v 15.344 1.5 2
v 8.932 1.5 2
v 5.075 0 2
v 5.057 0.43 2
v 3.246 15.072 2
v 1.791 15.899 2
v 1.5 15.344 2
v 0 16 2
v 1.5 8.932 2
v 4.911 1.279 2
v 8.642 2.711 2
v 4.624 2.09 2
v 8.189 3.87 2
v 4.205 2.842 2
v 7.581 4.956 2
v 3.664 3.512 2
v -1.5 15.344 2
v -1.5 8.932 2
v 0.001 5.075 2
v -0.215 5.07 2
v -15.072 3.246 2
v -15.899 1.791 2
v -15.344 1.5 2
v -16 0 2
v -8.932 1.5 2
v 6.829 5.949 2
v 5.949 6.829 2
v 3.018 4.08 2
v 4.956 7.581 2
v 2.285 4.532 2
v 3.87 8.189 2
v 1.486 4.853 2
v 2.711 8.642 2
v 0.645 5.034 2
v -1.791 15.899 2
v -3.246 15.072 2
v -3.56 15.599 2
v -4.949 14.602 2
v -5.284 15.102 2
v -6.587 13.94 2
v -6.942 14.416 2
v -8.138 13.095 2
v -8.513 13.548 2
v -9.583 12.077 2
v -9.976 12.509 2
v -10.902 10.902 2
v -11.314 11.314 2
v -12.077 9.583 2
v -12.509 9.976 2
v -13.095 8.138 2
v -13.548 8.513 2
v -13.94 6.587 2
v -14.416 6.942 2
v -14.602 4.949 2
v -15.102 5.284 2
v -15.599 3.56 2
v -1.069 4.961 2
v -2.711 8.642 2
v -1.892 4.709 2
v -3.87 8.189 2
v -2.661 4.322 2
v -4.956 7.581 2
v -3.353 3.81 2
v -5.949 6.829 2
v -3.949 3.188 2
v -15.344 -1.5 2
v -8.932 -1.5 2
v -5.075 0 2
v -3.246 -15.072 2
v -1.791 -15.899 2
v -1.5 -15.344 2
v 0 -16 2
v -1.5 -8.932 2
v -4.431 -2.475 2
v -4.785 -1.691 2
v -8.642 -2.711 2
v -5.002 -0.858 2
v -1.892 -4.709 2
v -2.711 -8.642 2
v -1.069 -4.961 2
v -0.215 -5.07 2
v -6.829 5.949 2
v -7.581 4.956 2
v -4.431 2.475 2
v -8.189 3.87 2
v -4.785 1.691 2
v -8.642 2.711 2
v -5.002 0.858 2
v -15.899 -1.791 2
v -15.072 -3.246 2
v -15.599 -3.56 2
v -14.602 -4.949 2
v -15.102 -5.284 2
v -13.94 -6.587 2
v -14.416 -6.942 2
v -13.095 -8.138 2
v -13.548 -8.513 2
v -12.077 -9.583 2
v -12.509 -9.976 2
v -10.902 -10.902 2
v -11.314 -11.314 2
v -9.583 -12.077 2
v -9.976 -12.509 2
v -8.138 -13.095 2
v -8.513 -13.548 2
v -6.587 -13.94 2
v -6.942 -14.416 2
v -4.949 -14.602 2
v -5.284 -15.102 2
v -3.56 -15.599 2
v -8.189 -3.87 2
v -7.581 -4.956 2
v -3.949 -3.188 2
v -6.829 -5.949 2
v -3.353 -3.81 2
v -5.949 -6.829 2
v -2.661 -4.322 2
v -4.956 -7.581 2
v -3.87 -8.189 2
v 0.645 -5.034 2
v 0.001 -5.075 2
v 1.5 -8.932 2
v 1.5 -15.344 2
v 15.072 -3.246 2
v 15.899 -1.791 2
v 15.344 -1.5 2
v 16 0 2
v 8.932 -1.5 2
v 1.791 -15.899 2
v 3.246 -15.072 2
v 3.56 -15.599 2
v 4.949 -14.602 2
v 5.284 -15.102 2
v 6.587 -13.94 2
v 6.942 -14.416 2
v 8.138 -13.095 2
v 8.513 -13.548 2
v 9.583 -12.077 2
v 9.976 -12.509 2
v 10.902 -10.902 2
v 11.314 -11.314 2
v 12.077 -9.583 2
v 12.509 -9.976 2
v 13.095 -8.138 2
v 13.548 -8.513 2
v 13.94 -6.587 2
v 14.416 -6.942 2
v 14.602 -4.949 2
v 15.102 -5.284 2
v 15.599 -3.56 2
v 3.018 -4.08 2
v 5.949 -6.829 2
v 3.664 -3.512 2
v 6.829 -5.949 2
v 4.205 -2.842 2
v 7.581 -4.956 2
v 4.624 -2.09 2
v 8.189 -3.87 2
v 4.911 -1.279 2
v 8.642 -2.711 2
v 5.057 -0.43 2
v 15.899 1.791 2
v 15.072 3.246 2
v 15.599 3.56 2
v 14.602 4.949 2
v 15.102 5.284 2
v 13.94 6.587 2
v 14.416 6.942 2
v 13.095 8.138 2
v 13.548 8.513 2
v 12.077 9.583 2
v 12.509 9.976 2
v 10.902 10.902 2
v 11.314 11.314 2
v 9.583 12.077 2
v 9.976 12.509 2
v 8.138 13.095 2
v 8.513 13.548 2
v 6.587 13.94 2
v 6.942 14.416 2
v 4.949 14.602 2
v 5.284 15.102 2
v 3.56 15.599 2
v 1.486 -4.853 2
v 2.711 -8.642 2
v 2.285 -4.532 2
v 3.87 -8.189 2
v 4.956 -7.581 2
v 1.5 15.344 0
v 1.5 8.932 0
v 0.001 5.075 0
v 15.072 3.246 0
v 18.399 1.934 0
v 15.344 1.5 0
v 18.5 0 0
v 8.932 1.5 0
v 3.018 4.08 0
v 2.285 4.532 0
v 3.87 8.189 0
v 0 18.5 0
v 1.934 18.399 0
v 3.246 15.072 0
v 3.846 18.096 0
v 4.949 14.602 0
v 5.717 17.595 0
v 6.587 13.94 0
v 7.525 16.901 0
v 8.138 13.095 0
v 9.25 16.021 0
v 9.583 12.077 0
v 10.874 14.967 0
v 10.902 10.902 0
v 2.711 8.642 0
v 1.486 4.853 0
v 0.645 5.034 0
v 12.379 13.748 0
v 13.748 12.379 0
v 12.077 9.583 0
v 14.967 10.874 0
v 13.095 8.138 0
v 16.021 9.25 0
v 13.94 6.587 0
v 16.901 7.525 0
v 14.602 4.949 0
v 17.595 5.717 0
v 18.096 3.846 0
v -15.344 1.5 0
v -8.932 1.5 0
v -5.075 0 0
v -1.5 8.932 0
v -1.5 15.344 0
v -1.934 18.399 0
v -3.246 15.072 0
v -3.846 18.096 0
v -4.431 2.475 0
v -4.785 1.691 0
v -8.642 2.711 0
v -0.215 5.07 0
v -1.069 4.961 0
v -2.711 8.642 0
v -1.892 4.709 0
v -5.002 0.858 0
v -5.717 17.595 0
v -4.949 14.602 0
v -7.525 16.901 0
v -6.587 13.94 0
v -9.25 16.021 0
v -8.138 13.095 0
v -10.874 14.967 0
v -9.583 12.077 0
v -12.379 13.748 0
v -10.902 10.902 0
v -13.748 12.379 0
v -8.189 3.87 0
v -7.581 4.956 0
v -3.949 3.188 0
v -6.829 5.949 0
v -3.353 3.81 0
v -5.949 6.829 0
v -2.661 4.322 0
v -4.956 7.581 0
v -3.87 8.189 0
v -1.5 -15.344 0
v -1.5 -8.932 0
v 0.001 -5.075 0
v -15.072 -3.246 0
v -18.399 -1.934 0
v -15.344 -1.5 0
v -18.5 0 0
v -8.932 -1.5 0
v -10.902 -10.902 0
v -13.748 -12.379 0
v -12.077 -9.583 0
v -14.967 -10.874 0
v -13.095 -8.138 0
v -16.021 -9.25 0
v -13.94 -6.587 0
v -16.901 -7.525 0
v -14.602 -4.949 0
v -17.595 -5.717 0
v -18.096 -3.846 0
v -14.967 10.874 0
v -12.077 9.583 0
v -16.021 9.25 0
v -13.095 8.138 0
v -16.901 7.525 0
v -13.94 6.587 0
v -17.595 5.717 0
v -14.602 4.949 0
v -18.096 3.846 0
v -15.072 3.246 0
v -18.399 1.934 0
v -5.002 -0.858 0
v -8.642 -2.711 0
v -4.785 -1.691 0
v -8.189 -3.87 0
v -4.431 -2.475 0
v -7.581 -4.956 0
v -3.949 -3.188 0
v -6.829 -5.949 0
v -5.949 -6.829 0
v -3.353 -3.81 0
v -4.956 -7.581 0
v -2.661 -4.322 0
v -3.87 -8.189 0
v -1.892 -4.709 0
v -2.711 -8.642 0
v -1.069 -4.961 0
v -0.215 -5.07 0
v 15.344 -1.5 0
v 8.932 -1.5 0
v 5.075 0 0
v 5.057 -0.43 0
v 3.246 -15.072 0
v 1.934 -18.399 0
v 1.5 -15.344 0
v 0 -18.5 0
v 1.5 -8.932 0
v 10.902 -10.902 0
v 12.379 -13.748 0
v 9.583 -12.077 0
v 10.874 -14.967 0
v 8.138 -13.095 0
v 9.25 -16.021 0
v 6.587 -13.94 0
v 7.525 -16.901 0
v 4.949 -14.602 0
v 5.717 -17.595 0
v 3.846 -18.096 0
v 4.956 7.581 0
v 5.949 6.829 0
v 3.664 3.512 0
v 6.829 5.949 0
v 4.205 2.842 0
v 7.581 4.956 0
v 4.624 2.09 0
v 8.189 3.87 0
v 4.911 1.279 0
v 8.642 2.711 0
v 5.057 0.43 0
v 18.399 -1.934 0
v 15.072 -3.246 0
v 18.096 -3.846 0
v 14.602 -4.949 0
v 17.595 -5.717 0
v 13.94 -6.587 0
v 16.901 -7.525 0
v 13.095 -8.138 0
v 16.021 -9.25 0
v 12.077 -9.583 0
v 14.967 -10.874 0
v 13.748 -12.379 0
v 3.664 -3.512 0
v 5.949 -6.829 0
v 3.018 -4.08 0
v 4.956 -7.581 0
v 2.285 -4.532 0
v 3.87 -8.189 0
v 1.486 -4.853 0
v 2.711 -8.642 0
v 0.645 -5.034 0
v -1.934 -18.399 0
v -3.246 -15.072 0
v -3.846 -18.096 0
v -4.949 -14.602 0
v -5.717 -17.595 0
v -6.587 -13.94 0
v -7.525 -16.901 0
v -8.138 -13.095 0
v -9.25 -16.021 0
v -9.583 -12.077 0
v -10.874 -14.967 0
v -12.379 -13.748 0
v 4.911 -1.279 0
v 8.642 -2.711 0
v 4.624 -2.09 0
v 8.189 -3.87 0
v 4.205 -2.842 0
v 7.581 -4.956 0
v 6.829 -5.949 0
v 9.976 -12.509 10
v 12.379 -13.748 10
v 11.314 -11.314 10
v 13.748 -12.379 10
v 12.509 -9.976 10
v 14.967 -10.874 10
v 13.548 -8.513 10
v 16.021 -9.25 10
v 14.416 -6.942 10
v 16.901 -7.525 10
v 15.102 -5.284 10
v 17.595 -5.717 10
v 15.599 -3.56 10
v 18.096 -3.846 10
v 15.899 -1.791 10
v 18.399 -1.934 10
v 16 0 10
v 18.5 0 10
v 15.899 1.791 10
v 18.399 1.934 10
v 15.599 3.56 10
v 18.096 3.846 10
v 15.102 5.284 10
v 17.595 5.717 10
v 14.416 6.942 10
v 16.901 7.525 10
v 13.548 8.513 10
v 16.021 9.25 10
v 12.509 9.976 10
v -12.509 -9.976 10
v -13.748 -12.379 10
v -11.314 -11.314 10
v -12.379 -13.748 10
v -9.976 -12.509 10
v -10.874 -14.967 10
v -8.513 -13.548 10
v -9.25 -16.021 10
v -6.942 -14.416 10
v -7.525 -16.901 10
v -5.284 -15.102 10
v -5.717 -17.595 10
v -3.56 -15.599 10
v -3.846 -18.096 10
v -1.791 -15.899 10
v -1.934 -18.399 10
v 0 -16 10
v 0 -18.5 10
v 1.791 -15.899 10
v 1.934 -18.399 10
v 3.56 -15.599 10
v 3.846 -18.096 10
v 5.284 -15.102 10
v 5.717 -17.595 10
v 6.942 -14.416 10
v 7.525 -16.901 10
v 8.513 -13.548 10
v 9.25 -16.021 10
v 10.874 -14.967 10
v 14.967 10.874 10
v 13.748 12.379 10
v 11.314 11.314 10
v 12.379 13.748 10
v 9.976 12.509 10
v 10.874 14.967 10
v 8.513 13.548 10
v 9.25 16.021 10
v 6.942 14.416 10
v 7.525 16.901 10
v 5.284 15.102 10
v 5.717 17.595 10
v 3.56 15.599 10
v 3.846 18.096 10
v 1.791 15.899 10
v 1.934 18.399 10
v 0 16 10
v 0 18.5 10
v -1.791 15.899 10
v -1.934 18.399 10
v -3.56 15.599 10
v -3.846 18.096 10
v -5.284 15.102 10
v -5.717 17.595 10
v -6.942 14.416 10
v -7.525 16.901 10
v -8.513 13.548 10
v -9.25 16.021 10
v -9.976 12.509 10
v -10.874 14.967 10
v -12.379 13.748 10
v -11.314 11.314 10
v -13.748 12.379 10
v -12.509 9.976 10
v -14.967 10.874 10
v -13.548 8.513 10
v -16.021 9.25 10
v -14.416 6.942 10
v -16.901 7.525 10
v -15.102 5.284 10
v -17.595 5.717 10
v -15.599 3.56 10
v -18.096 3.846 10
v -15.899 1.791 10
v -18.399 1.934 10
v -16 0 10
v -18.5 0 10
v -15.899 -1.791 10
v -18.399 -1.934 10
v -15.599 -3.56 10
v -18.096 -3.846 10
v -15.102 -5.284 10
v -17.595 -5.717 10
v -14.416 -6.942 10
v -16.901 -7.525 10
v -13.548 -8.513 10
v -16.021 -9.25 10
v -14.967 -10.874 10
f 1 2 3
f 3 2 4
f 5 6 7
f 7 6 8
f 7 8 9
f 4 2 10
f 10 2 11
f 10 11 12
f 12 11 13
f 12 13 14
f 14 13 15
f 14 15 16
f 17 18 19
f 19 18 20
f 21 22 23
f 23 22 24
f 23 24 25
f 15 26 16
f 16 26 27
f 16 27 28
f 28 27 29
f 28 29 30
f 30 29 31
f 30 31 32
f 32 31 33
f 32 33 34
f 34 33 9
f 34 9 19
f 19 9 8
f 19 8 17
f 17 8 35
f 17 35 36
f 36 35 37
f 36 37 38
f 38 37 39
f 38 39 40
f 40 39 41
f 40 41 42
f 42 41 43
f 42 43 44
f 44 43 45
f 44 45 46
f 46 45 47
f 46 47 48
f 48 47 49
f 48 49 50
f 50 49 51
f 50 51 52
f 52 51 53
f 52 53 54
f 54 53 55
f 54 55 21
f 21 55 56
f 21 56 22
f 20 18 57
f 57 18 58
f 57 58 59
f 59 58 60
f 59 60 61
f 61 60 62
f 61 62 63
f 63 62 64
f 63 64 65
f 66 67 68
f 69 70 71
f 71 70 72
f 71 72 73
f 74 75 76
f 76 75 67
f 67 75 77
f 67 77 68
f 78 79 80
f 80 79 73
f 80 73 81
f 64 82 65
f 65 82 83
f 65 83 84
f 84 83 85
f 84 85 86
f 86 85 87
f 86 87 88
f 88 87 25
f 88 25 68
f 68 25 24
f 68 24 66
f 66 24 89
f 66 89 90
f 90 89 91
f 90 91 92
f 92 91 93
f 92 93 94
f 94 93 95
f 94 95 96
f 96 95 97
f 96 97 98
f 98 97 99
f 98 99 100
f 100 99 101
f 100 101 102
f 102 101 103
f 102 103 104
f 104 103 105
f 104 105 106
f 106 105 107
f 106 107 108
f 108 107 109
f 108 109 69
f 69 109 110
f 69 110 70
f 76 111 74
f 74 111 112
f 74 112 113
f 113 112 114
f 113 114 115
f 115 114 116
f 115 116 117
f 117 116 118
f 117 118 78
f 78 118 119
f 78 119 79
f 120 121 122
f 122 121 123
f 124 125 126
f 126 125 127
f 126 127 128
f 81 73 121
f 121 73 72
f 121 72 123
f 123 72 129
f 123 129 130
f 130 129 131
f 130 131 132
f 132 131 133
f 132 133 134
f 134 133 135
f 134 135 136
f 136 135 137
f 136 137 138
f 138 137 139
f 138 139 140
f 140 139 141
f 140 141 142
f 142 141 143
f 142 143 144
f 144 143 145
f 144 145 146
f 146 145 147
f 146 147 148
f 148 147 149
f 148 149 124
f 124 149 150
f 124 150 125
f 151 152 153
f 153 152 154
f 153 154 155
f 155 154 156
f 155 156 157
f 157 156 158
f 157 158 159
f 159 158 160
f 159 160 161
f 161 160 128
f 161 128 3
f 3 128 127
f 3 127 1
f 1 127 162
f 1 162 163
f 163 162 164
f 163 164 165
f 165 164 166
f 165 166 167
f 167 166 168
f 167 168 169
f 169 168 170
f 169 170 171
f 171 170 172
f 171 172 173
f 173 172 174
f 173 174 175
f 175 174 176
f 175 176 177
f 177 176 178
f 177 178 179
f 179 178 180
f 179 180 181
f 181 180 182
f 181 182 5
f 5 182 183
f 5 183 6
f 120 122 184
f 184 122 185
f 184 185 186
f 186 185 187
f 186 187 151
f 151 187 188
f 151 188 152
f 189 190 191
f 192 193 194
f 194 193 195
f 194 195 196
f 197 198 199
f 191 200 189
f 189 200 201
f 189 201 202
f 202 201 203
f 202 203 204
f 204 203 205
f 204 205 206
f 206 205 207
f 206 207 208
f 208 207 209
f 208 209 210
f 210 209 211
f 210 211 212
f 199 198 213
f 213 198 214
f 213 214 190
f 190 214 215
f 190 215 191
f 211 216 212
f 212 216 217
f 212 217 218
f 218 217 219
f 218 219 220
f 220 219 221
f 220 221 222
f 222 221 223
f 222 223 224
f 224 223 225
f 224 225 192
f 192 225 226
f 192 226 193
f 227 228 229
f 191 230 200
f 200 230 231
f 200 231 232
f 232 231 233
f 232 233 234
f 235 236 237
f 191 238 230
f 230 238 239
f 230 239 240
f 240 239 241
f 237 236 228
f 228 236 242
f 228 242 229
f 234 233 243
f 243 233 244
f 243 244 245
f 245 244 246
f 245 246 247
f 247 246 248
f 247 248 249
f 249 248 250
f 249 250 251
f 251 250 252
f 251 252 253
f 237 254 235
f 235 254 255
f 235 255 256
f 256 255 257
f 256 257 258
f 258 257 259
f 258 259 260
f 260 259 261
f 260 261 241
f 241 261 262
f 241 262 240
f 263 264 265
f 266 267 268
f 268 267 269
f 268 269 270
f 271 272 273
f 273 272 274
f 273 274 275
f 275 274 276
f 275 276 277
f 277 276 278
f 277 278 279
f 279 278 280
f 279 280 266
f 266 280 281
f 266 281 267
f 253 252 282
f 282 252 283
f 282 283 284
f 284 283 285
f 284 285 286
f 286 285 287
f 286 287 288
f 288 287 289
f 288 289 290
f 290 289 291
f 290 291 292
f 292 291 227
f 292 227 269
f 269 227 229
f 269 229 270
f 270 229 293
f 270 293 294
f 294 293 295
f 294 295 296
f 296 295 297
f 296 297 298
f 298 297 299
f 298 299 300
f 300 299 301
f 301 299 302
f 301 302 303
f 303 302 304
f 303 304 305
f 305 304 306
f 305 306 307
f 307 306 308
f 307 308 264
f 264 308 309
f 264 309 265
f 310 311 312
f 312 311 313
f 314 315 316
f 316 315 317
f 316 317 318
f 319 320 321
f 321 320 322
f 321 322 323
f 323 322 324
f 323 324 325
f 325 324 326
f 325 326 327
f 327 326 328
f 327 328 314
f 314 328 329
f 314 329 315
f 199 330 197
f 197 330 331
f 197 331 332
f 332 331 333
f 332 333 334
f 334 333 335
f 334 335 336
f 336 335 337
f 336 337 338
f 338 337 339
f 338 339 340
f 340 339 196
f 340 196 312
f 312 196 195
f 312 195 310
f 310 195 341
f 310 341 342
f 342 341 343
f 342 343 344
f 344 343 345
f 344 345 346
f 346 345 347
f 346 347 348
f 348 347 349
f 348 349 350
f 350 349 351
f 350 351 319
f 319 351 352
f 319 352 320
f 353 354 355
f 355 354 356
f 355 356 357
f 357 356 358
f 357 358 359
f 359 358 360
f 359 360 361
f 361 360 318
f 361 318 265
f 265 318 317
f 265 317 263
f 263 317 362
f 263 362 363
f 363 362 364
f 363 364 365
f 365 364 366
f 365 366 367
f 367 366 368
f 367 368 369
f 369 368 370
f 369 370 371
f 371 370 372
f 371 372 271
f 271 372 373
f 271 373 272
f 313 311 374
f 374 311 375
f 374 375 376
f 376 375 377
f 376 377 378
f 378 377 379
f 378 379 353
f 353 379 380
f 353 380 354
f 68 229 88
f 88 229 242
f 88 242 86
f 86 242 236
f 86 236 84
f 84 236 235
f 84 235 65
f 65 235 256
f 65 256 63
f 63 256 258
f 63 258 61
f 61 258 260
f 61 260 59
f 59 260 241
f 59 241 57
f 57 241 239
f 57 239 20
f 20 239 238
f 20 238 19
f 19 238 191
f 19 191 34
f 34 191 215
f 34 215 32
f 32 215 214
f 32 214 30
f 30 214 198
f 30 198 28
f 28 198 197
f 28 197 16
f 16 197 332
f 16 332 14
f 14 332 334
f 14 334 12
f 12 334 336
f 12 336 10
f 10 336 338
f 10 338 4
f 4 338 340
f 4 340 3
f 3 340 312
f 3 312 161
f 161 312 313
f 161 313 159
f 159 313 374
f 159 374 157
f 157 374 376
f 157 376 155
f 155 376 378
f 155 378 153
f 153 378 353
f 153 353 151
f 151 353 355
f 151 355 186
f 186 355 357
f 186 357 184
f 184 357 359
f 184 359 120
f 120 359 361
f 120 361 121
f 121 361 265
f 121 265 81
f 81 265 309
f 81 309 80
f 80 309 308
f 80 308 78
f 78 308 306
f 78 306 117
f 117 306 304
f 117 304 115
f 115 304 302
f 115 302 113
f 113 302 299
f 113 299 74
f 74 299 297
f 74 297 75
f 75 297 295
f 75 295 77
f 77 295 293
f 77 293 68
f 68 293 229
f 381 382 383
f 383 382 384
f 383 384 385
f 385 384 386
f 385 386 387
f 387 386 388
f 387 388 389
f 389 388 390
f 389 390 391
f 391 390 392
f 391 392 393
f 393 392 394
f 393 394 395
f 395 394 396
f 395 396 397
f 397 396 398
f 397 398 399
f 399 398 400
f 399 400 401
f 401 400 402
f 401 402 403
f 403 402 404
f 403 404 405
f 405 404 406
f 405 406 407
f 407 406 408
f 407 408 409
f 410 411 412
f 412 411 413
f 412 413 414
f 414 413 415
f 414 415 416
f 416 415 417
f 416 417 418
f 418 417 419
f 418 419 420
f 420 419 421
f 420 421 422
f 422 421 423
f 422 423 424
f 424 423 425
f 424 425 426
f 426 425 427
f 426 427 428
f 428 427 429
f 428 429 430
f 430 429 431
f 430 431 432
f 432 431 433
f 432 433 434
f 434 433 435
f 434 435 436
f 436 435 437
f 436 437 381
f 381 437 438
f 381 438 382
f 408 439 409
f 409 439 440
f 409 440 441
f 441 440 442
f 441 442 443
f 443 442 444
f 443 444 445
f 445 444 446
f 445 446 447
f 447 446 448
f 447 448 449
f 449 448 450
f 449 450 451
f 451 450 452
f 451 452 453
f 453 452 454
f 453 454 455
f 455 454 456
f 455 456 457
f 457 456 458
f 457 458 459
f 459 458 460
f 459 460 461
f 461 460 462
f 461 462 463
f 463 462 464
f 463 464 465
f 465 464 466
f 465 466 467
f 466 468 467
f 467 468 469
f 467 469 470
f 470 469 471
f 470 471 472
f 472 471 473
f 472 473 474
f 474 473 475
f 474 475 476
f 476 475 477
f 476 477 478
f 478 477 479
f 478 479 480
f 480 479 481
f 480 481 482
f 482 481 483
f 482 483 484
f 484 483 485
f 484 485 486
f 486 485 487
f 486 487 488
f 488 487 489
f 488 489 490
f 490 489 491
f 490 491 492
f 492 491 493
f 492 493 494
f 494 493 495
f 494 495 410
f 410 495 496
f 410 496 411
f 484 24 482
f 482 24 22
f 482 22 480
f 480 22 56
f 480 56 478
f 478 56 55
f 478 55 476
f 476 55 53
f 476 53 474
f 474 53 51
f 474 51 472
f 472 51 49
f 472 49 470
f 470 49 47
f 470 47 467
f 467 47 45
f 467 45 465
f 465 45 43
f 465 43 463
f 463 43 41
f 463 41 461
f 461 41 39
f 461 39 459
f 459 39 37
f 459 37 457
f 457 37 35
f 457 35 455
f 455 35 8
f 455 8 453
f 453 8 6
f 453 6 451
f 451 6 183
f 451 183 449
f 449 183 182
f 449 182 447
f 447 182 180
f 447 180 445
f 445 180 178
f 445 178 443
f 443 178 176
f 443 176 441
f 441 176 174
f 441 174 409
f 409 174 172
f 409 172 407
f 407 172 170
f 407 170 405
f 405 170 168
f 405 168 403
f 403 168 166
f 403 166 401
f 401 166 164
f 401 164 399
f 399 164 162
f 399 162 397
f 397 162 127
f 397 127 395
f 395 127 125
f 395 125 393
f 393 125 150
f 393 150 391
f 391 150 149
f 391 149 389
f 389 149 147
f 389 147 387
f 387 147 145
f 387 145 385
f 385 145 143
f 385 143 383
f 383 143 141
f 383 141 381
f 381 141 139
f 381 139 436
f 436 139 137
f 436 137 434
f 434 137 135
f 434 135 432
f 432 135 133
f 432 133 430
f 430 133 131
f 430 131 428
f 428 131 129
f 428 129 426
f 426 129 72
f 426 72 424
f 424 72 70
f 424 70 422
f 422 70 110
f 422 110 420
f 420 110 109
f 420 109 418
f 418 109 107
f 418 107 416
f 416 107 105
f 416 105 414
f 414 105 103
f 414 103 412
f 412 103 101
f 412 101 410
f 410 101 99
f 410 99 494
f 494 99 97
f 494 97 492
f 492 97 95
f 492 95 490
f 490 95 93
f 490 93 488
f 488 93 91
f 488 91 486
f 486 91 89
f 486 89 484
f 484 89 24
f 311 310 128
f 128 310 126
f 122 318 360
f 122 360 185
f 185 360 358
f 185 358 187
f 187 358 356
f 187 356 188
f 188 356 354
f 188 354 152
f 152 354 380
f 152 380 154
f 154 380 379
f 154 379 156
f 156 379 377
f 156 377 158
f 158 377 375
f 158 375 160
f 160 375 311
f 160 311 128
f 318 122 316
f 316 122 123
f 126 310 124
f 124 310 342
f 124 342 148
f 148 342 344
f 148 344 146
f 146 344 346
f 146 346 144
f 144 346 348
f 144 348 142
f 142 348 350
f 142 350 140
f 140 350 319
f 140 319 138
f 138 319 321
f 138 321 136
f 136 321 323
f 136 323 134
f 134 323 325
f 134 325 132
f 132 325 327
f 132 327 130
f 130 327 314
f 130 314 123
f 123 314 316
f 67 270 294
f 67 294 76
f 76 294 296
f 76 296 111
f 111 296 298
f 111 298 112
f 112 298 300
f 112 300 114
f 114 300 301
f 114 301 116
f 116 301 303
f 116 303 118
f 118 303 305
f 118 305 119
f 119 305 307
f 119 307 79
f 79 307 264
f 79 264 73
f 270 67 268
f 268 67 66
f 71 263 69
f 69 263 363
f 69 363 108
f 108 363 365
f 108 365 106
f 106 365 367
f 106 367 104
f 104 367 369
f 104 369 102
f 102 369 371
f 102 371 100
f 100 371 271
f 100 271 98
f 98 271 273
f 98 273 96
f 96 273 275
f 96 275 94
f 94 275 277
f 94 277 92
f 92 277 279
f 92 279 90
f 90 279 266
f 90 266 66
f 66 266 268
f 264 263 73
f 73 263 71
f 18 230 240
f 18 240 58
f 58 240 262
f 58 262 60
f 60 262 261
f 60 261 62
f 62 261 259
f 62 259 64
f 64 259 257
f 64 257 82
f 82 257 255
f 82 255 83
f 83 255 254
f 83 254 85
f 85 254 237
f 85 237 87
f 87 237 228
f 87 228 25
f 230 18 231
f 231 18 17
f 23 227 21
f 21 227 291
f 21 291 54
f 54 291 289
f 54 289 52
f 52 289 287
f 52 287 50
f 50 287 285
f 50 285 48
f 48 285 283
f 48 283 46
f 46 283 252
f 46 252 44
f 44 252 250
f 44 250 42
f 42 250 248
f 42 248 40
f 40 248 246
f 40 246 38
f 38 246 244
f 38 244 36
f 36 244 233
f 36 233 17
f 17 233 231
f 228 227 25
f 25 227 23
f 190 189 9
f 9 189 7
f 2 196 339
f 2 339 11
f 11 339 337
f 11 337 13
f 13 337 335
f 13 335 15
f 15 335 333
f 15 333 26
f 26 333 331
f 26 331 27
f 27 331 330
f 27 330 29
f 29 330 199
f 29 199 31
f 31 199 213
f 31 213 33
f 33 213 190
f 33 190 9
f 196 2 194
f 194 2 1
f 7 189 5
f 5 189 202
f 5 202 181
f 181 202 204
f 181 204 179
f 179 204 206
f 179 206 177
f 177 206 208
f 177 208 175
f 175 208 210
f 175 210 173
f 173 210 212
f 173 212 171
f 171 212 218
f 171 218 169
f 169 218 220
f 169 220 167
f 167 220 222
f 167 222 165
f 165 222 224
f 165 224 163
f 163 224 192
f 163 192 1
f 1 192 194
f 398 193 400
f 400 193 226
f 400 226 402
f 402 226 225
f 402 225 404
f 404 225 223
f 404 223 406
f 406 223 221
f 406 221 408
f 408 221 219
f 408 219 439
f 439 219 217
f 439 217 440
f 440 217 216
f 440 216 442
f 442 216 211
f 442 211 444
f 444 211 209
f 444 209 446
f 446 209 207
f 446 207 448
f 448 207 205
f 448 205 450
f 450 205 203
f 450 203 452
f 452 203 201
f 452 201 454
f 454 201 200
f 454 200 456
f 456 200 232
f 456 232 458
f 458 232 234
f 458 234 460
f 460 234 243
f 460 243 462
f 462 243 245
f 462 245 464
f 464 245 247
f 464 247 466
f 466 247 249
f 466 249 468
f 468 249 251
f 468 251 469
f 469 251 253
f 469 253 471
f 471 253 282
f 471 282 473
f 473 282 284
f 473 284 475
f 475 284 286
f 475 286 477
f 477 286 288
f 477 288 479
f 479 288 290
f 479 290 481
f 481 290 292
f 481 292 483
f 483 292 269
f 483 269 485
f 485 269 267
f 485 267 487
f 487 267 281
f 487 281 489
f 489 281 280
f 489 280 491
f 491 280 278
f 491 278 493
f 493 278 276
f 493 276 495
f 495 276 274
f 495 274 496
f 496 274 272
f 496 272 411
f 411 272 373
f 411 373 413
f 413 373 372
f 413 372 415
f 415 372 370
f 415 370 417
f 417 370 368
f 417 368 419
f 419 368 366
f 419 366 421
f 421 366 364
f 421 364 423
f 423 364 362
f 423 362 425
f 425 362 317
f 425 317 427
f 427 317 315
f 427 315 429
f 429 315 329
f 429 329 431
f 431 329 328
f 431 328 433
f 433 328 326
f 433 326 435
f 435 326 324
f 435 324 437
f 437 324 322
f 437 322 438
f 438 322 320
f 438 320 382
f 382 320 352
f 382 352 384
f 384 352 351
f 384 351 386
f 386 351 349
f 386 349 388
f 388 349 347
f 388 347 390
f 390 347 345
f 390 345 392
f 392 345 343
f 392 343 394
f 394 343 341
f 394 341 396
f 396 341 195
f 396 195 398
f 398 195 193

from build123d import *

# Parameters (mm, degrees)
ESBO_O1_R                = 16
ESBO_O1_R_2              = 5.075
RESSALTO_EXTRUS_O1_DEPTH = 2
ESBO_O2_R                = 18
ESBO_O2_R_2              = 16
RESSALTO_EXTRUS_O2_DEPTH = 10
CORTE_EXTRUS_O1_DEPTH    = 10
RESSALTO_EXTRUS_O3_START = -10
ESBO_O4_R                = 18.5
ESBO_O4_R_2              = 18
RESSALTO_EXTRUS_O3_DEPTH = 10


with BuildPart() as part:
    # Esboço1 → Ressalto-extrusão1 (new body)
    with BuildSketch(Plane.XY):
        Circle(ESBO_O1_R)
        Circle(ESBO_O1_R_2, mode=Mode.SUBTRACT)
    extrude(amount=RESSALTO_EXTRUS_O1_DEPTH)

    # Esboço2 → Ressalto-extrusão2 (add)
    with BuildSketch(Plane.XY):
        Circle(ESBO_O2_R)
        Circle(ESBO_O2_R_2, mode=Mode.SUBTRACT)
    extrude(amount=RESSALTO_EXTRUS_O2_DEPTH)

    # Esboço3 → Corte-extrusão1 (cut)
    with BuildSketch(Plane(origin=(0, 0, 0), x_dir=(-1, 0, 0), z_dir=(0, 0, -1))):
        with BuildLine():
            ThreePointArc((-1.5, -8.932222345), (-6.404474843, -6.404474843), (-8.932222345, -1.5))
            Line((-8.932222345, -1.5), (-15.344338178, -1.5))
            ThreePointArc((-15.344338178, -1.5), (-10.90180522, -10.90180522), (-1.5, -15.344338178))
            Line((-1.5, -15.344338178), (-1.5, -8.932222345))
        make_face()
        with BuildLine():
            ThreePointArc((8.932222345, -1.5), (6.404474843, -6.404474843), (1.5, -8.932222345))
            Line((1.5, -8.932222345), (1.5, -15.344338178))
            ThreePointArc((1.5, -15.344338178), (10.90180522, -10.90180522), (15.344338178, -1.5))
            Line((15.344338178, -1.5), (8.932222345, -1.5))
        make_face()
        with BuildLine():
            ThreePointArc((1.5, 8.932222345), (6.404474843, 6.404474843), (8.932222345, 1.5))
            Line((8.932222345, 1.5), (15.344338178, 1.5))
            ThreePointArc((15.344338178, 1.5), (10.90180522, 10.90180522), (1.5, 15.344338178))
            Line((1.5, 15.344338178), (1.5, 8.932222345))
        make_face()
        with BuildLine():
            ThreePointArc((-8.932222345, 1.5), (-6.404474843, 6.404474843), (-1.5, 8.932222345))
            Line((-1.5, 8.932222345), (-1.5, 15.344338178))
            ThreePointArc((-1.5, 15.344338178), (-10.90180522, 10.90180522), (-15.344338178, 1.5))
            Line((-15.344338178, 1.5), (-8.932222345, 1.5))
        make_face()
    extrude(amount=-CORTE_EXTRUS_O1_DEPTH, mode=Mode.SUBTRACT)

    # Esboço4 → Ressalto-extrusão3 (add)
    with BuildSketch(Plane.XY.offset(10).offset(RESSALTO_EXTRUS_O3_START)):
        Circle(ESBO_O4_R)
        Circle(ESBO_O4_R_2, mode=Mode.SUBTRACT)
    extrude(amount=RESSALTO_EXTRUS_O3_DEPTH)


solid = part.part
